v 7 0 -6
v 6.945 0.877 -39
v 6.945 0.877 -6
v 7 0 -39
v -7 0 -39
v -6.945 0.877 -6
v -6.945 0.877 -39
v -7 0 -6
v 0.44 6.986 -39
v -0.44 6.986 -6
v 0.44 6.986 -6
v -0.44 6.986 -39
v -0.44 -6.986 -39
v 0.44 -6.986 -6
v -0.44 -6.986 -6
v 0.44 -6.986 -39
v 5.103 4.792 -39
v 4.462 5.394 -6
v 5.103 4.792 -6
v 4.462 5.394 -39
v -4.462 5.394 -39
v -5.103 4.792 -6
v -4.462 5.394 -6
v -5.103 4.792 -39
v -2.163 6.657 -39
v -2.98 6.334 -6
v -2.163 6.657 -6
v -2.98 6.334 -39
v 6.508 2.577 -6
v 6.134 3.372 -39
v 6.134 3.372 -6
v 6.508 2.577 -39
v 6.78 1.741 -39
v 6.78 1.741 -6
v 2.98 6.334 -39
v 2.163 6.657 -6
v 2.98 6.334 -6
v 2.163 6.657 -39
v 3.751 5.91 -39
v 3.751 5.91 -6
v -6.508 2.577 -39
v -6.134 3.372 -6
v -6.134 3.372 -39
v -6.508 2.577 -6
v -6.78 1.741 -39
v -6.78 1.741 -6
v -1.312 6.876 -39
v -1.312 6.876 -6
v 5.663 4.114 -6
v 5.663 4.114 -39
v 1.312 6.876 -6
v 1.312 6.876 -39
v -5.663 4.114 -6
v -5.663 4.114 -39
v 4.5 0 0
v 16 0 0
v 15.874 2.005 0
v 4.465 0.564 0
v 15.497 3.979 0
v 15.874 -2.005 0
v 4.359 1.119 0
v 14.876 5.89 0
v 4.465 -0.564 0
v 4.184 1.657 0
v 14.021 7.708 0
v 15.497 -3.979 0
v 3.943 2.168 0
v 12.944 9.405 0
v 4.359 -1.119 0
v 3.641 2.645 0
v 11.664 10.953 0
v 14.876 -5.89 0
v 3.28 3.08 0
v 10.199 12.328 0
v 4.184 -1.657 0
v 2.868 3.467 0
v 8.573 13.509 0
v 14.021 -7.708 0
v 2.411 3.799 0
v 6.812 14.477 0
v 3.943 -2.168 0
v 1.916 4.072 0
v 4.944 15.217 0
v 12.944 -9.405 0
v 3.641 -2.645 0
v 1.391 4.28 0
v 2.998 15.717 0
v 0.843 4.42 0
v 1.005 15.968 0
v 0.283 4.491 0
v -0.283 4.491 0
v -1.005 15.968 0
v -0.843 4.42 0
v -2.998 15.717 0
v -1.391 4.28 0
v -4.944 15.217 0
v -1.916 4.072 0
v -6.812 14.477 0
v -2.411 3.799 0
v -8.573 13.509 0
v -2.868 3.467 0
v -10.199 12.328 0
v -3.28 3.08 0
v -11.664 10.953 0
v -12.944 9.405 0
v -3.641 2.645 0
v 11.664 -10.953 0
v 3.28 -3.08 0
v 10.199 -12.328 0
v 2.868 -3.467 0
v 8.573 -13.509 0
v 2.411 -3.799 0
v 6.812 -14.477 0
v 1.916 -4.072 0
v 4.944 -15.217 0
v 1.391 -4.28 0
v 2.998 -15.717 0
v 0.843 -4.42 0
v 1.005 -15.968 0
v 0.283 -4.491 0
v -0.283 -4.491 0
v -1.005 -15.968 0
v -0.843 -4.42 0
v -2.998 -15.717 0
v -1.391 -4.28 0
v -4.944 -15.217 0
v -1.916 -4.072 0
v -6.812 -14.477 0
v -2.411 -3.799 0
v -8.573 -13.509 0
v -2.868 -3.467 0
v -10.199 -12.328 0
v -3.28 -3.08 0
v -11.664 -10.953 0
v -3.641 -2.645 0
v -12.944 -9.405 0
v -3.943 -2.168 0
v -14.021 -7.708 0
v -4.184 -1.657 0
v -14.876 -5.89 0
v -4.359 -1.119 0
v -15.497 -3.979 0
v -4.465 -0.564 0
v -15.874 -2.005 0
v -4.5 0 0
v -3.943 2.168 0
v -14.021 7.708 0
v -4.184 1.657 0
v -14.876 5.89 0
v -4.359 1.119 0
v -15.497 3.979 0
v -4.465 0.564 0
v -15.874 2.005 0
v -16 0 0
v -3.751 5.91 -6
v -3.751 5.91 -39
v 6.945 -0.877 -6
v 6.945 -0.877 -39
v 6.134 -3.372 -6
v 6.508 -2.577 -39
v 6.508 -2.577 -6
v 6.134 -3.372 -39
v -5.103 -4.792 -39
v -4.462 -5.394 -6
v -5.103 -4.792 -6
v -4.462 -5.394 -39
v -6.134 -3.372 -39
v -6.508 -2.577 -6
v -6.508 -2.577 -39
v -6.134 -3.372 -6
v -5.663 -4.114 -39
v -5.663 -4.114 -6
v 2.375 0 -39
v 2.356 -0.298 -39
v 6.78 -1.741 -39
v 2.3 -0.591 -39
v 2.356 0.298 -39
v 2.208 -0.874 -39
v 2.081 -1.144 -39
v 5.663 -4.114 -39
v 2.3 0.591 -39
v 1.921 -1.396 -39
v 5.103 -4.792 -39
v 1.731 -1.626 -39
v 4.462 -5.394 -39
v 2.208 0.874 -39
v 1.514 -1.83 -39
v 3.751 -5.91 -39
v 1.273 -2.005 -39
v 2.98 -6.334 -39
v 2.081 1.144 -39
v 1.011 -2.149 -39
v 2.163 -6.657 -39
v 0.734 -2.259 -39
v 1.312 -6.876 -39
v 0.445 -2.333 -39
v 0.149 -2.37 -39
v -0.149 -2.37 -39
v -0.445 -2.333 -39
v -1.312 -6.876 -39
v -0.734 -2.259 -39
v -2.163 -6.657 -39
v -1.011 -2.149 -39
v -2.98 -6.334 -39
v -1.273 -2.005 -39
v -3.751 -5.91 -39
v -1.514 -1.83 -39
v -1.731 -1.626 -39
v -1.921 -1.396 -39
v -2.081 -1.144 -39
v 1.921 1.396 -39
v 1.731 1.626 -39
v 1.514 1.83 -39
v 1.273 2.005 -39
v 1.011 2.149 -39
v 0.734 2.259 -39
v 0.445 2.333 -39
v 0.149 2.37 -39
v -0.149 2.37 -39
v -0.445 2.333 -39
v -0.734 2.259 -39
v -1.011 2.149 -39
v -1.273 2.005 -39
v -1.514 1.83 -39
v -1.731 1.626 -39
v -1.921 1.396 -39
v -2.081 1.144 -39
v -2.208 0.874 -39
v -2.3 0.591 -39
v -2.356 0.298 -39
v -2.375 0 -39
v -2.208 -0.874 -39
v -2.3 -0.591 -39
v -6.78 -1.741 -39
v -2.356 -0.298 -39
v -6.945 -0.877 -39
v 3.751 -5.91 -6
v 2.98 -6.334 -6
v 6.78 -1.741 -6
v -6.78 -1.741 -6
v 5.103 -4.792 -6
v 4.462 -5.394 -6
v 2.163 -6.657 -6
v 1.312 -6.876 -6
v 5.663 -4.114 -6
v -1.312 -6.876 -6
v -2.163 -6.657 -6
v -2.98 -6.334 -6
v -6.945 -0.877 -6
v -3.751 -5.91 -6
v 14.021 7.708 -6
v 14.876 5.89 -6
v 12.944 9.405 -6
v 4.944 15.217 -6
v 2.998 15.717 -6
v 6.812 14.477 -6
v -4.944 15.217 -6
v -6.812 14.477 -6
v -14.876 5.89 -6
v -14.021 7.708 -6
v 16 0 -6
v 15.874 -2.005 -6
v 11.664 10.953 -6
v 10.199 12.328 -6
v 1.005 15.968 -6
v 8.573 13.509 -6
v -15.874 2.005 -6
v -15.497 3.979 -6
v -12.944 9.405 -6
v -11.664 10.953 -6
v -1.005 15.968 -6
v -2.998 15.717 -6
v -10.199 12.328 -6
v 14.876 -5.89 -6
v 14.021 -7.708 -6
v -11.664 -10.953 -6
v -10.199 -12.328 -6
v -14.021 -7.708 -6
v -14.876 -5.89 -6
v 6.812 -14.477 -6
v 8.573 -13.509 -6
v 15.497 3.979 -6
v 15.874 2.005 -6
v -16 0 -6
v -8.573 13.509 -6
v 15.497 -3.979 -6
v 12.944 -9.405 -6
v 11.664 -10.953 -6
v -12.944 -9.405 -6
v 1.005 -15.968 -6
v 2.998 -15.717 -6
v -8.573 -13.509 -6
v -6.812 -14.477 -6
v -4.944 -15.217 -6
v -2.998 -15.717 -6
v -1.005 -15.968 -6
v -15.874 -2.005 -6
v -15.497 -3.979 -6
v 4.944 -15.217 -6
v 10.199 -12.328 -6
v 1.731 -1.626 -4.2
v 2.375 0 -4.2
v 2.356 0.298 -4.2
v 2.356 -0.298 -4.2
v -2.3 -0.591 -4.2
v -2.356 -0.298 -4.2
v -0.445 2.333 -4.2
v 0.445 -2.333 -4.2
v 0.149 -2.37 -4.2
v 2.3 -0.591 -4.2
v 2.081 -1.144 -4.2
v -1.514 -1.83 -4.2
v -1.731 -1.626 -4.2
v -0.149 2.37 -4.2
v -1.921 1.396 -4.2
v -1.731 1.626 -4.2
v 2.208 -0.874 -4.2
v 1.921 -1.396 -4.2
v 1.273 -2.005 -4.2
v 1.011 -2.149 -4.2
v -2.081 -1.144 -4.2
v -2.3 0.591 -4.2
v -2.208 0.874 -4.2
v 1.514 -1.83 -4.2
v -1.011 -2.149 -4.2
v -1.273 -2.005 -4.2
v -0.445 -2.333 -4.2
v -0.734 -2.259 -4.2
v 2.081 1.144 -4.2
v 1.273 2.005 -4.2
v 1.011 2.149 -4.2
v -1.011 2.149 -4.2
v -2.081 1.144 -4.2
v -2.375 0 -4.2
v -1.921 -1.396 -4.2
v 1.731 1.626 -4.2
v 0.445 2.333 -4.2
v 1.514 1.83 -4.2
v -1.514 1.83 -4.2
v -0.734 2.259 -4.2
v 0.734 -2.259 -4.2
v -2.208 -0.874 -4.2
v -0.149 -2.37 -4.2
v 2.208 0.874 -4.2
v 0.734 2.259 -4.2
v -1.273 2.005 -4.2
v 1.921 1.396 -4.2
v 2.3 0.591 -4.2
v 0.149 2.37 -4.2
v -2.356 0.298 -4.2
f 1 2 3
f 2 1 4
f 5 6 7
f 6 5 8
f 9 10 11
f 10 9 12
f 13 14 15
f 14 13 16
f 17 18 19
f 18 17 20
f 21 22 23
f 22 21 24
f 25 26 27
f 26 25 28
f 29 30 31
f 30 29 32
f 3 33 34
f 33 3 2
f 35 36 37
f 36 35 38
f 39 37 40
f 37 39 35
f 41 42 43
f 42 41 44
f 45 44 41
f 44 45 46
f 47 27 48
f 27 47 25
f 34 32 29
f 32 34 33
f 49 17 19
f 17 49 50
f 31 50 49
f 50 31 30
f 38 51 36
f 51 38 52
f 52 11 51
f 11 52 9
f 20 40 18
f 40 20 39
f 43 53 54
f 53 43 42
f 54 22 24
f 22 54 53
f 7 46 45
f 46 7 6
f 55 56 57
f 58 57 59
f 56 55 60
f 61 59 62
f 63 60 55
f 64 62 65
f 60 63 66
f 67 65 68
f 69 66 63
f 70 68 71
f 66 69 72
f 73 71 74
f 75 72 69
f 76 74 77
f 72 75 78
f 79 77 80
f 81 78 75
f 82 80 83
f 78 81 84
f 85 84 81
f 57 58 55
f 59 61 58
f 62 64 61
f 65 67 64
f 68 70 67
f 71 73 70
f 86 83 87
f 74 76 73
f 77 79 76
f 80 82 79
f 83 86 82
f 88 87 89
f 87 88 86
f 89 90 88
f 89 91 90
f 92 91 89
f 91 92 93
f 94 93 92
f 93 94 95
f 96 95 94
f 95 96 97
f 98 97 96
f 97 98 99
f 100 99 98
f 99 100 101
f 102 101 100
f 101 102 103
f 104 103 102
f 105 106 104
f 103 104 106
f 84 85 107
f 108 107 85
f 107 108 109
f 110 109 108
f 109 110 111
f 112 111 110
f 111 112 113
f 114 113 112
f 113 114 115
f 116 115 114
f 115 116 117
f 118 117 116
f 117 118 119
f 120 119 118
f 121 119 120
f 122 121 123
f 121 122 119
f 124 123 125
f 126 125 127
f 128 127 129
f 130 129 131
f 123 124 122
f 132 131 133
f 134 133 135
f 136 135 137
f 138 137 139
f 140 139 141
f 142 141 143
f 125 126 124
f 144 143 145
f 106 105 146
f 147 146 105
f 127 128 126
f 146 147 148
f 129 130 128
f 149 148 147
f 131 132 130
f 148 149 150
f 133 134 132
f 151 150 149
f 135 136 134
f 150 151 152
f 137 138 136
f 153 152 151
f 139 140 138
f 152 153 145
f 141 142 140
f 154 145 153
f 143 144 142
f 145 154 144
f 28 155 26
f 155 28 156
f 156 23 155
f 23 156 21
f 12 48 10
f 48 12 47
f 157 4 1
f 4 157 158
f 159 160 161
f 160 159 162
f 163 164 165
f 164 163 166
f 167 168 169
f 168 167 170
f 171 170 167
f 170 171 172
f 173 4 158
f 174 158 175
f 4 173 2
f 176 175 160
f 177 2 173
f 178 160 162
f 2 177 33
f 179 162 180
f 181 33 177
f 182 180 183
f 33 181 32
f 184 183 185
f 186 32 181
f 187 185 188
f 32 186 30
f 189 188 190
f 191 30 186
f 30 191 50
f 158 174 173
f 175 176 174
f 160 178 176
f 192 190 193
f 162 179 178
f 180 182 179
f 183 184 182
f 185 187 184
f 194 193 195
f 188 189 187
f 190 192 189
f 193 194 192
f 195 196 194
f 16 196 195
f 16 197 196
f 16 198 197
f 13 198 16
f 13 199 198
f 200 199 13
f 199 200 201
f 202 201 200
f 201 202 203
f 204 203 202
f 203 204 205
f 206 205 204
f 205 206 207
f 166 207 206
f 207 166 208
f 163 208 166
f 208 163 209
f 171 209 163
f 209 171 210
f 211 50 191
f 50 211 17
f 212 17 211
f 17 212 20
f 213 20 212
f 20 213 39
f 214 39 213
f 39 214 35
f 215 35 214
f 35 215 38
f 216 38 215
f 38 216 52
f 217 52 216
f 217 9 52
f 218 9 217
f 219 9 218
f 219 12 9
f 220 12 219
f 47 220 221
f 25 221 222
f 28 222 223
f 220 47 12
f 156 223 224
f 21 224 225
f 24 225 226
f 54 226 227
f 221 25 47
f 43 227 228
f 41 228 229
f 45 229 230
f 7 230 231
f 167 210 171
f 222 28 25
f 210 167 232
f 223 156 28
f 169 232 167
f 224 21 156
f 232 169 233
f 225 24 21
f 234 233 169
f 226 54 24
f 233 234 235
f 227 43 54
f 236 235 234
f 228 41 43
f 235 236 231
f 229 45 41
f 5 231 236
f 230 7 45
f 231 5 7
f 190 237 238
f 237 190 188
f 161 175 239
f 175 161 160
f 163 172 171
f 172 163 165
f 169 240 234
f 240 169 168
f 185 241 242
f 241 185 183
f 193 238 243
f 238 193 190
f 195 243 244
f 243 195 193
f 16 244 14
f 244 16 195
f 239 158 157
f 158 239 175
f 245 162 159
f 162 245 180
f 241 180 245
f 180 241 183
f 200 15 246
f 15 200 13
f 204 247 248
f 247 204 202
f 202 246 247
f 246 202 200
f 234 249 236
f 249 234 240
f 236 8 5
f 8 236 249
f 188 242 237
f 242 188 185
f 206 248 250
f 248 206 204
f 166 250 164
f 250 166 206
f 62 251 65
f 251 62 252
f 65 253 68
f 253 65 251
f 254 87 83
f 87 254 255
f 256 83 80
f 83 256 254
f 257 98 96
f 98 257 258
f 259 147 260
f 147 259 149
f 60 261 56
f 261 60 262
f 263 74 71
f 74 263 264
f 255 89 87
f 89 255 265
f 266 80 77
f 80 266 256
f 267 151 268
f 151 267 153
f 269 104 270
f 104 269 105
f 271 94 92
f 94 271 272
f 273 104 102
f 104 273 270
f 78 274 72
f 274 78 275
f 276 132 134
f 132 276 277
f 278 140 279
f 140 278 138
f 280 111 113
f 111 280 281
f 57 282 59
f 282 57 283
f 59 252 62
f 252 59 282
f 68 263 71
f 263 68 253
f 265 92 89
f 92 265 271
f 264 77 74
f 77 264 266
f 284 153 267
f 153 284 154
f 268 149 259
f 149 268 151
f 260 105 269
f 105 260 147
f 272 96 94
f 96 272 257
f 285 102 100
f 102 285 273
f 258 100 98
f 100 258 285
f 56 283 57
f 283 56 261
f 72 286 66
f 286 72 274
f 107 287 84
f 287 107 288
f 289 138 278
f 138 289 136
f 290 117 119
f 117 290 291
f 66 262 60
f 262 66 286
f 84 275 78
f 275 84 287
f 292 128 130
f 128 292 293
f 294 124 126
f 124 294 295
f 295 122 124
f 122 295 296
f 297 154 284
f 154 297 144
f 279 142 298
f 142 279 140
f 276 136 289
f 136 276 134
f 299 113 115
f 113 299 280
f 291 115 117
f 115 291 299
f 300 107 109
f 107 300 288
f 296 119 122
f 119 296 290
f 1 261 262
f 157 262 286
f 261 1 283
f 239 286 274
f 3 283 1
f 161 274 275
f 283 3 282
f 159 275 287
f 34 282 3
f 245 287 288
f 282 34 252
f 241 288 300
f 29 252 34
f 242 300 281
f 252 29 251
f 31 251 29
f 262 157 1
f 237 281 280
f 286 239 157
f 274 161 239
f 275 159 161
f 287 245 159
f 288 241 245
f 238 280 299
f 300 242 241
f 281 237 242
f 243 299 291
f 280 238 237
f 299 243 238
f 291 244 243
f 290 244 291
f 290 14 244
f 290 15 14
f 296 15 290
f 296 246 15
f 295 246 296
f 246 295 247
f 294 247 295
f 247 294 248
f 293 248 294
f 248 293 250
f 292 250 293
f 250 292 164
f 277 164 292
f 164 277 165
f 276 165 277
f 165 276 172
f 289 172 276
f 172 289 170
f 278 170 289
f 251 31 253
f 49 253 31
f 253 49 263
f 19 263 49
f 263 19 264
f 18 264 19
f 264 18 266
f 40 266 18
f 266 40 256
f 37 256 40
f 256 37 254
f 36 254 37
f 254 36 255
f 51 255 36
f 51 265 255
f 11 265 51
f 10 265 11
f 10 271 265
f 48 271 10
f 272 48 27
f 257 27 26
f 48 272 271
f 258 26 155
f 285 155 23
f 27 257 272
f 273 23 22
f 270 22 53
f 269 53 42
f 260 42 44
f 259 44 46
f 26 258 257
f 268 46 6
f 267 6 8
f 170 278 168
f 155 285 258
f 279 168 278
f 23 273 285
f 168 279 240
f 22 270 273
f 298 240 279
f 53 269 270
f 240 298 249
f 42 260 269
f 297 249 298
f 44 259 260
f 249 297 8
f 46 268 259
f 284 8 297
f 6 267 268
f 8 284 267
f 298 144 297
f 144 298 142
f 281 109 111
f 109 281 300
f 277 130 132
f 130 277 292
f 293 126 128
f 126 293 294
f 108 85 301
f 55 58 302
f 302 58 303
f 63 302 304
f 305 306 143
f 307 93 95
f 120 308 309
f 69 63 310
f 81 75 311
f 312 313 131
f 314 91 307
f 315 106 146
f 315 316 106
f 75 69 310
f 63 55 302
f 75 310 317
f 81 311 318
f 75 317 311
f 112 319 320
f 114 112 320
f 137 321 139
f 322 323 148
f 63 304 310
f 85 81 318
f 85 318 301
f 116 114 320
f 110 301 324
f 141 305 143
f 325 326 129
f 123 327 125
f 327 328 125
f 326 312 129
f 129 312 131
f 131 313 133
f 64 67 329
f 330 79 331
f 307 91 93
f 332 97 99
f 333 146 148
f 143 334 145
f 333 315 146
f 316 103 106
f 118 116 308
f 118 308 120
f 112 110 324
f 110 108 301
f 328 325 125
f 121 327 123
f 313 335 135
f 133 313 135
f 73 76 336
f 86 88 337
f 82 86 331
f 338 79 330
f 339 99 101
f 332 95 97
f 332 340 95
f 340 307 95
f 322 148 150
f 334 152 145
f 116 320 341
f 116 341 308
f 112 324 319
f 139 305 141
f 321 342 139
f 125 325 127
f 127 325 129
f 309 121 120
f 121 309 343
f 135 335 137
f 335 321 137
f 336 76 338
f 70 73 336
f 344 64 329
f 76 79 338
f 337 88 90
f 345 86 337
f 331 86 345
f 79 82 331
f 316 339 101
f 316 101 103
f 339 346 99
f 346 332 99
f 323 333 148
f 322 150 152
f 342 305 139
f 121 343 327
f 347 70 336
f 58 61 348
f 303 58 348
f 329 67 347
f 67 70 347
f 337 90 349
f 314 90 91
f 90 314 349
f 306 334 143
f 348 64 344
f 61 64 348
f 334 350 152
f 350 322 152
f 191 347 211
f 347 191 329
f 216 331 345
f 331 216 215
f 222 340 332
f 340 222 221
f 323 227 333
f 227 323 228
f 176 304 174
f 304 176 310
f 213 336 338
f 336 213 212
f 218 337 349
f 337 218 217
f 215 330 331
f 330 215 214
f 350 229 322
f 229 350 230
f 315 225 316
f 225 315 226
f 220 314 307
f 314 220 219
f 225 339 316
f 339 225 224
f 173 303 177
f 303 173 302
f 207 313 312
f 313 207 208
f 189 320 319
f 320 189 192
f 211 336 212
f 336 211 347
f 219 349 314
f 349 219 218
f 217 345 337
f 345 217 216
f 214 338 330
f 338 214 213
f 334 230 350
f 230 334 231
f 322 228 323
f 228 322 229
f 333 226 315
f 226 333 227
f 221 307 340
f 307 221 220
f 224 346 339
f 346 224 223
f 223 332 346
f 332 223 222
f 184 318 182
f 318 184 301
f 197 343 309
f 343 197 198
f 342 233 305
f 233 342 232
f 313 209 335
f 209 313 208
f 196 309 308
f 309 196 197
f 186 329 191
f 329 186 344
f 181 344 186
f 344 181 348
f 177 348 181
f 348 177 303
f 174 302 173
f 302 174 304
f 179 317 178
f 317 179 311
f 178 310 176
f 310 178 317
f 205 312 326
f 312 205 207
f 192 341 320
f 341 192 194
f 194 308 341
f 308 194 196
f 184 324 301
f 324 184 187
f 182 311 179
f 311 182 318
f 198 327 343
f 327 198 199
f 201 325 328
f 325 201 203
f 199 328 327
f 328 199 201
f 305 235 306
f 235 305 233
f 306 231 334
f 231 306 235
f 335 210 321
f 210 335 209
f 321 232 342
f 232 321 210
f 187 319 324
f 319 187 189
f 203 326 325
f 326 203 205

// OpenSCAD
$fn = 50;


difference() {
	union() {
		translate(v = [0, 0, -39.0000000000]) {
			cylinder(h = 39, r = 7.0000000000);
		}
		translate(v = [0, 0, -6.0000000000]) {
			cylinder(h = 6, r = 16.0000000000);
		}
	}
	union() {
		translate(v = [0, 0, 0]) {
			rotate(a = [0, 0, 0]) {
				difference() {
					union() {
						#translate(v = [0, 0, -39.0000000000]) {
							cylinder(h = 39, r = 2.2500000000);
						}
						#translate(v = [0, 0, -4.2000000000]) {
							cylinder(h = 4.2000000000, r = 7.0000000000, r1 = 2.3750000000, r2 = 4.5000000000);
						}
						#translate(v = [0, 0, -39.0000000000]) {
							cylinder(h = 39, r = 2.3750000000);
						}
						#translate(v = [0, 0, -39.0000000000]) {
							cylinder(h = 39, r = 2.2500000000);
						}
					}
					union();
				}
			}
		}
	}
}
